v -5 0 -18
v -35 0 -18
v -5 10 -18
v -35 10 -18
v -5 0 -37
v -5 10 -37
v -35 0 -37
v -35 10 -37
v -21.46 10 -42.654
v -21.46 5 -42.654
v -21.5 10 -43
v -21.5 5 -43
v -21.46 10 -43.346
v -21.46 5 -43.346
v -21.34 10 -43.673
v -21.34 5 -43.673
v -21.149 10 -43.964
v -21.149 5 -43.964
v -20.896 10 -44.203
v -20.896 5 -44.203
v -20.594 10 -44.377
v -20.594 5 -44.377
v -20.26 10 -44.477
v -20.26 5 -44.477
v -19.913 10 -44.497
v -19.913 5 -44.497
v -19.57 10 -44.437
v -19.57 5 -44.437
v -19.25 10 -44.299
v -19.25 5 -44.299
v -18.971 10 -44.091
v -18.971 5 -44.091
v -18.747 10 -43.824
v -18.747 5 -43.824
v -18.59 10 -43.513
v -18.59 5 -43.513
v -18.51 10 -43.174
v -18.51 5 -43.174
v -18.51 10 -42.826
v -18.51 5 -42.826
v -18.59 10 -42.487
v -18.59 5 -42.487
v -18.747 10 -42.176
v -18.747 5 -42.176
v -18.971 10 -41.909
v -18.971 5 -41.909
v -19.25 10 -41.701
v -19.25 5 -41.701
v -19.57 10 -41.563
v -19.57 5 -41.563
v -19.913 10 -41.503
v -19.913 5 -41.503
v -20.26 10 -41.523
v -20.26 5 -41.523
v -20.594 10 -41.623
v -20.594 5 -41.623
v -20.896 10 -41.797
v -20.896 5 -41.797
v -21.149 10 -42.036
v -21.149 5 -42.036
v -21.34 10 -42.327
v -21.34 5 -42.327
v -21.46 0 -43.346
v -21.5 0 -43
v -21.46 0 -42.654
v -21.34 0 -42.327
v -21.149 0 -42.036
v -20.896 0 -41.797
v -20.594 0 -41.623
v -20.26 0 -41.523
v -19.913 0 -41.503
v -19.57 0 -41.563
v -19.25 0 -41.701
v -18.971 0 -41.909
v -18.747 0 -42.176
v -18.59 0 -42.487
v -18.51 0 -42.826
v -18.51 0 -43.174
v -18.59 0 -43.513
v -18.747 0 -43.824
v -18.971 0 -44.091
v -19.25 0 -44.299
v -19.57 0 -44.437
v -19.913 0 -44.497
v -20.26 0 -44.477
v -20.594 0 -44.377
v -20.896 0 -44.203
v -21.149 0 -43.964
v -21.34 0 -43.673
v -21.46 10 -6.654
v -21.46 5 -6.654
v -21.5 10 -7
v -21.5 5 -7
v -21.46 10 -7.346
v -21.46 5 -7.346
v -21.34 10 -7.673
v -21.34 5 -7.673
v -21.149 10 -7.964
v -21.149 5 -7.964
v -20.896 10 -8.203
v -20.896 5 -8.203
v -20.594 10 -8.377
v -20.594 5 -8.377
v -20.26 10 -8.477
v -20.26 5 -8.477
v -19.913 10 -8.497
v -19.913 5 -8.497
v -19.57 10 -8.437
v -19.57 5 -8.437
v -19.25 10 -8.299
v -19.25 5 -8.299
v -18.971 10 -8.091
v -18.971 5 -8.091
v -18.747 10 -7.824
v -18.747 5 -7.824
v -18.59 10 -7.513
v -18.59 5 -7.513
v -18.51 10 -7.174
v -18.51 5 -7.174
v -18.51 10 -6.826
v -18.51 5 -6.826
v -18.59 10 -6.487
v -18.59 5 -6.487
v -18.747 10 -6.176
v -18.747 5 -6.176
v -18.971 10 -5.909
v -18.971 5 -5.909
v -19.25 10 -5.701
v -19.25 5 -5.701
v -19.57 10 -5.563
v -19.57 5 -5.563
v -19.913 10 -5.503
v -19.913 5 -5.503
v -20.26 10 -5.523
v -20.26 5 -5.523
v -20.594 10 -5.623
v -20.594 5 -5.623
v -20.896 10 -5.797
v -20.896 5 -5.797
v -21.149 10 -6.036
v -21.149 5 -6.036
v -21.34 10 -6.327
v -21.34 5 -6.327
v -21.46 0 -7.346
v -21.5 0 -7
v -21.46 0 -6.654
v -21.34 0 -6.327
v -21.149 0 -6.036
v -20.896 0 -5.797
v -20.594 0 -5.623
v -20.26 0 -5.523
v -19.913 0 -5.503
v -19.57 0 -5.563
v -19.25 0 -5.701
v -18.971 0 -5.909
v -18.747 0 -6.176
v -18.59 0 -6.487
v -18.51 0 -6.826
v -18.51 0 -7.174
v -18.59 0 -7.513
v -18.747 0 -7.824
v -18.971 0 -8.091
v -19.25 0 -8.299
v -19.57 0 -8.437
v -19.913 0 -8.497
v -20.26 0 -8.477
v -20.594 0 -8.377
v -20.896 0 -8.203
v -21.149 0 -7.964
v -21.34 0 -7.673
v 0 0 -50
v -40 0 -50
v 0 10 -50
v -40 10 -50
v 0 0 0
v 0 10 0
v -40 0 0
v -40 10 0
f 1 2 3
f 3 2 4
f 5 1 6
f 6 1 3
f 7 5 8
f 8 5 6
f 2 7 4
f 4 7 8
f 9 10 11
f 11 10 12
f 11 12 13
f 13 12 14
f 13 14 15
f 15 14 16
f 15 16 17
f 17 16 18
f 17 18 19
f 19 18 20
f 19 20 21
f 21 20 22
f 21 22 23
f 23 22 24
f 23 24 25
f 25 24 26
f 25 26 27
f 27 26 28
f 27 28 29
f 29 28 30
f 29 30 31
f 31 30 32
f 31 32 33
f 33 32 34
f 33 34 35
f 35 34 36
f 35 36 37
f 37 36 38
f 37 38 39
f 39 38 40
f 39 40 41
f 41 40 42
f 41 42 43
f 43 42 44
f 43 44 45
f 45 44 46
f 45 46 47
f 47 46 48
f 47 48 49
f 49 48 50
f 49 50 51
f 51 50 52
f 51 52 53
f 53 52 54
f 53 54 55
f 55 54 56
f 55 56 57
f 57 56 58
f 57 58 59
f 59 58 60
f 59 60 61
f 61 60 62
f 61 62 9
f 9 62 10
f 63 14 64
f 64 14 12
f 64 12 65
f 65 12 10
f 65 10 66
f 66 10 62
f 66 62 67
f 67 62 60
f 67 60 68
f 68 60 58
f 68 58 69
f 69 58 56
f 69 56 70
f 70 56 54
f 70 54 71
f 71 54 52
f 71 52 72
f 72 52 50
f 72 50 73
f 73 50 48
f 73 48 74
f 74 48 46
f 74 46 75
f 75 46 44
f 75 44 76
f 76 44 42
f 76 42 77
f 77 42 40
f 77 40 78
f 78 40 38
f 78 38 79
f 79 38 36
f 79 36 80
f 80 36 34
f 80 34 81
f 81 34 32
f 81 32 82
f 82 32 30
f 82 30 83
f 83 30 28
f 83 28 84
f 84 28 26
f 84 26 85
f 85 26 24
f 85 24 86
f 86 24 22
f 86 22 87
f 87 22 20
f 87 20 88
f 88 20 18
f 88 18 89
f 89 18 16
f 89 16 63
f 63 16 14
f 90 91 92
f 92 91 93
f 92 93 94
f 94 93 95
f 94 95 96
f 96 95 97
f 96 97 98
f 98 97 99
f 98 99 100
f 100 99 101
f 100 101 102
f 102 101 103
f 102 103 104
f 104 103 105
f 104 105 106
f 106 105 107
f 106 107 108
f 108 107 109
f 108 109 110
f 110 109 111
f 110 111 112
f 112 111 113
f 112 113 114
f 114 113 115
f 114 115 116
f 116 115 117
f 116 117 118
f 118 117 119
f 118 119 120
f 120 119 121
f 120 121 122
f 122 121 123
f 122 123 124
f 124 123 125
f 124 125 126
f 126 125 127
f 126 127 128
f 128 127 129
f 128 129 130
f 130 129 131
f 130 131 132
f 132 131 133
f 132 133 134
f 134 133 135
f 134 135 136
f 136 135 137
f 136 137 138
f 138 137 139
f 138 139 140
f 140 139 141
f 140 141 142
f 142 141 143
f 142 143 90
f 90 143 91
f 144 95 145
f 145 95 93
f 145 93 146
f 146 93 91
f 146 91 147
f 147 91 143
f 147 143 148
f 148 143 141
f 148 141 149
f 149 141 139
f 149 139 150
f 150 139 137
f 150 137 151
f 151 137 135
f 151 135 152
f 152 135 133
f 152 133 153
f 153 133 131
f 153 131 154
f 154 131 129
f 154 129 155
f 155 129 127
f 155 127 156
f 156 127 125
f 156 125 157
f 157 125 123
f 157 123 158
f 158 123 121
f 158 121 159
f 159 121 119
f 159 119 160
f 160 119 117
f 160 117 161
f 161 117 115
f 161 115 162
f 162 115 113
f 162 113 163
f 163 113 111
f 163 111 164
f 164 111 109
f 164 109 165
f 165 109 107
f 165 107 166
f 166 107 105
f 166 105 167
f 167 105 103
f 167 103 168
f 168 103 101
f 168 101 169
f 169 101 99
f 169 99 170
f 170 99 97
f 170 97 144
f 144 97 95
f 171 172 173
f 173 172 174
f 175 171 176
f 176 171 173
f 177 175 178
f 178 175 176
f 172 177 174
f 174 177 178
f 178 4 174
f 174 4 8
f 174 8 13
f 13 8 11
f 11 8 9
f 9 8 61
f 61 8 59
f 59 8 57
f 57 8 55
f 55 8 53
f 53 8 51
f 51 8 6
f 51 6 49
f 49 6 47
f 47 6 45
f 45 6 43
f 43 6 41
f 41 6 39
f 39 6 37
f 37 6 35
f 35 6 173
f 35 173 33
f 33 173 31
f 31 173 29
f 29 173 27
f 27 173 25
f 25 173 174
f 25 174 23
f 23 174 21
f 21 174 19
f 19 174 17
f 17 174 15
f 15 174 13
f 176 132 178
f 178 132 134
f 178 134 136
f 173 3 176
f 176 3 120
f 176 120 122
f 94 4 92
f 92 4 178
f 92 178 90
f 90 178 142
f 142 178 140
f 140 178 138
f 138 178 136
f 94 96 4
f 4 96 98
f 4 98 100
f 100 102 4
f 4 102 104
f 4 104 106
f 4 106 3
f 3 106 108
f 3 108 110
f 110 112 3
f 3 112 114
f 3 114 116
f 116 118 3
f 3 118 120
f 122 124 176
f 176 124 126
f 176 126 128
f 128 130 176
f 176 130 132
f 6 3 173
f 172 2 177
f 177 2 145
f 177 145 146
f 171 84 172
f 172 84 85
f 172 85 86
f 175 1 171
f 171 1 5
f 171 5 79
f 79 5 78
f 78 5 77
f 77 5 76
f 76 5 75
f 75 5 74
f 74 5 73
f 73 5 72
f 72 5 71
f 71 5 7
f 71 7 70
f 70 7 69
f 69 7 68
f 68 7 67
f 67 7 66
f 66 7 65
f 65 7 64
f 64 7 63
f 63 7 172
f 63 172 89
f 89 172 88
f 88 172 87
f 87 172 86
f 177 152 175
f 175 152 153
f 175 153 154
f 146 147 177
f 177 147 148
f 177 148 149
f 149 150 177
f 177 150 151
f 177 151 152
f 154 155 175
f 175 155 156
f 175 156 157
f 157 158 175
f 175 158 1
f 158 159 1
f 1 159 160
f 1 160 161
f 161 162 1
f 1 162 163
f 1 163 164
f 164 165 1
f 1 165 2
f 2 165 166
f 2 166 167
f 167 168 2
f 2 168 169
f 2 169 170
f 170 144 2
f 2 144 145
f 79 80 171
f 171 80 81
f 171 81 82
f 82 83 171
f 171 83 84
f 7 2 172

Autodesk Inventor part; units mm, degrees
ref_plane "YZ Plane" through (0, 0, 0) normal (1, 0, 0) x (0, 1, 0)
ref_plane "XZ Plane" through (0, 0, 0) normal (0, 1, 0) x (-1, 0, 0)
ref_plane "XY Plane" through (0, 0, 0) normal (0, 0, 1) x (1, 0, 0)
sketch "Sketch1" plane through (0, 0, 0) normal (0, 1, 0) x (-1, 0, 0)
  line L0 (0, 0) -> (40, 0)
  line L1 (40, 0) -> (40, -50)
  line L2 (40, -50) -> (0, -50)
  line L3 (0, -50) -> (0, 0)
  line L4 (40, 0) -> (0, 0)
  line L5 (0, 0) -> (0, -18)
  line L6 (5, -18) -> (35, -18)
  line L7 (40, -18) -> (40, 0)
  line L8 (35, -18) -> (5, -18)
  line L9 (0, -18) -> (0, -37)
  line L10 (5, -37) -> (35, -37)
  line L11 (40, -37) -> (40, -18)
  circle A0 centre (20, -7) radius 1.5
  circle A1 centre (20, -43) radius 1.5
  line L12 (20, -18) -> (35, -18)
  line L13 (35, -18) -> (35, -37)
  line L14 (35, -37) -> (20, -37)
  line L15 (20, -37) -> (5, -37)
  line L16 (5, -37) -> (5, -18)
  line L17 (5, -18) -> (20, -18)
  dimension "d0" = 40
  dimension "d1" = 50
  dimension "d2" = 3
  dimension "d3" = 3
extrude "Extrusion1" add sketch "Sketch1" along normal blind 10
properties part number "_3DPrint"
